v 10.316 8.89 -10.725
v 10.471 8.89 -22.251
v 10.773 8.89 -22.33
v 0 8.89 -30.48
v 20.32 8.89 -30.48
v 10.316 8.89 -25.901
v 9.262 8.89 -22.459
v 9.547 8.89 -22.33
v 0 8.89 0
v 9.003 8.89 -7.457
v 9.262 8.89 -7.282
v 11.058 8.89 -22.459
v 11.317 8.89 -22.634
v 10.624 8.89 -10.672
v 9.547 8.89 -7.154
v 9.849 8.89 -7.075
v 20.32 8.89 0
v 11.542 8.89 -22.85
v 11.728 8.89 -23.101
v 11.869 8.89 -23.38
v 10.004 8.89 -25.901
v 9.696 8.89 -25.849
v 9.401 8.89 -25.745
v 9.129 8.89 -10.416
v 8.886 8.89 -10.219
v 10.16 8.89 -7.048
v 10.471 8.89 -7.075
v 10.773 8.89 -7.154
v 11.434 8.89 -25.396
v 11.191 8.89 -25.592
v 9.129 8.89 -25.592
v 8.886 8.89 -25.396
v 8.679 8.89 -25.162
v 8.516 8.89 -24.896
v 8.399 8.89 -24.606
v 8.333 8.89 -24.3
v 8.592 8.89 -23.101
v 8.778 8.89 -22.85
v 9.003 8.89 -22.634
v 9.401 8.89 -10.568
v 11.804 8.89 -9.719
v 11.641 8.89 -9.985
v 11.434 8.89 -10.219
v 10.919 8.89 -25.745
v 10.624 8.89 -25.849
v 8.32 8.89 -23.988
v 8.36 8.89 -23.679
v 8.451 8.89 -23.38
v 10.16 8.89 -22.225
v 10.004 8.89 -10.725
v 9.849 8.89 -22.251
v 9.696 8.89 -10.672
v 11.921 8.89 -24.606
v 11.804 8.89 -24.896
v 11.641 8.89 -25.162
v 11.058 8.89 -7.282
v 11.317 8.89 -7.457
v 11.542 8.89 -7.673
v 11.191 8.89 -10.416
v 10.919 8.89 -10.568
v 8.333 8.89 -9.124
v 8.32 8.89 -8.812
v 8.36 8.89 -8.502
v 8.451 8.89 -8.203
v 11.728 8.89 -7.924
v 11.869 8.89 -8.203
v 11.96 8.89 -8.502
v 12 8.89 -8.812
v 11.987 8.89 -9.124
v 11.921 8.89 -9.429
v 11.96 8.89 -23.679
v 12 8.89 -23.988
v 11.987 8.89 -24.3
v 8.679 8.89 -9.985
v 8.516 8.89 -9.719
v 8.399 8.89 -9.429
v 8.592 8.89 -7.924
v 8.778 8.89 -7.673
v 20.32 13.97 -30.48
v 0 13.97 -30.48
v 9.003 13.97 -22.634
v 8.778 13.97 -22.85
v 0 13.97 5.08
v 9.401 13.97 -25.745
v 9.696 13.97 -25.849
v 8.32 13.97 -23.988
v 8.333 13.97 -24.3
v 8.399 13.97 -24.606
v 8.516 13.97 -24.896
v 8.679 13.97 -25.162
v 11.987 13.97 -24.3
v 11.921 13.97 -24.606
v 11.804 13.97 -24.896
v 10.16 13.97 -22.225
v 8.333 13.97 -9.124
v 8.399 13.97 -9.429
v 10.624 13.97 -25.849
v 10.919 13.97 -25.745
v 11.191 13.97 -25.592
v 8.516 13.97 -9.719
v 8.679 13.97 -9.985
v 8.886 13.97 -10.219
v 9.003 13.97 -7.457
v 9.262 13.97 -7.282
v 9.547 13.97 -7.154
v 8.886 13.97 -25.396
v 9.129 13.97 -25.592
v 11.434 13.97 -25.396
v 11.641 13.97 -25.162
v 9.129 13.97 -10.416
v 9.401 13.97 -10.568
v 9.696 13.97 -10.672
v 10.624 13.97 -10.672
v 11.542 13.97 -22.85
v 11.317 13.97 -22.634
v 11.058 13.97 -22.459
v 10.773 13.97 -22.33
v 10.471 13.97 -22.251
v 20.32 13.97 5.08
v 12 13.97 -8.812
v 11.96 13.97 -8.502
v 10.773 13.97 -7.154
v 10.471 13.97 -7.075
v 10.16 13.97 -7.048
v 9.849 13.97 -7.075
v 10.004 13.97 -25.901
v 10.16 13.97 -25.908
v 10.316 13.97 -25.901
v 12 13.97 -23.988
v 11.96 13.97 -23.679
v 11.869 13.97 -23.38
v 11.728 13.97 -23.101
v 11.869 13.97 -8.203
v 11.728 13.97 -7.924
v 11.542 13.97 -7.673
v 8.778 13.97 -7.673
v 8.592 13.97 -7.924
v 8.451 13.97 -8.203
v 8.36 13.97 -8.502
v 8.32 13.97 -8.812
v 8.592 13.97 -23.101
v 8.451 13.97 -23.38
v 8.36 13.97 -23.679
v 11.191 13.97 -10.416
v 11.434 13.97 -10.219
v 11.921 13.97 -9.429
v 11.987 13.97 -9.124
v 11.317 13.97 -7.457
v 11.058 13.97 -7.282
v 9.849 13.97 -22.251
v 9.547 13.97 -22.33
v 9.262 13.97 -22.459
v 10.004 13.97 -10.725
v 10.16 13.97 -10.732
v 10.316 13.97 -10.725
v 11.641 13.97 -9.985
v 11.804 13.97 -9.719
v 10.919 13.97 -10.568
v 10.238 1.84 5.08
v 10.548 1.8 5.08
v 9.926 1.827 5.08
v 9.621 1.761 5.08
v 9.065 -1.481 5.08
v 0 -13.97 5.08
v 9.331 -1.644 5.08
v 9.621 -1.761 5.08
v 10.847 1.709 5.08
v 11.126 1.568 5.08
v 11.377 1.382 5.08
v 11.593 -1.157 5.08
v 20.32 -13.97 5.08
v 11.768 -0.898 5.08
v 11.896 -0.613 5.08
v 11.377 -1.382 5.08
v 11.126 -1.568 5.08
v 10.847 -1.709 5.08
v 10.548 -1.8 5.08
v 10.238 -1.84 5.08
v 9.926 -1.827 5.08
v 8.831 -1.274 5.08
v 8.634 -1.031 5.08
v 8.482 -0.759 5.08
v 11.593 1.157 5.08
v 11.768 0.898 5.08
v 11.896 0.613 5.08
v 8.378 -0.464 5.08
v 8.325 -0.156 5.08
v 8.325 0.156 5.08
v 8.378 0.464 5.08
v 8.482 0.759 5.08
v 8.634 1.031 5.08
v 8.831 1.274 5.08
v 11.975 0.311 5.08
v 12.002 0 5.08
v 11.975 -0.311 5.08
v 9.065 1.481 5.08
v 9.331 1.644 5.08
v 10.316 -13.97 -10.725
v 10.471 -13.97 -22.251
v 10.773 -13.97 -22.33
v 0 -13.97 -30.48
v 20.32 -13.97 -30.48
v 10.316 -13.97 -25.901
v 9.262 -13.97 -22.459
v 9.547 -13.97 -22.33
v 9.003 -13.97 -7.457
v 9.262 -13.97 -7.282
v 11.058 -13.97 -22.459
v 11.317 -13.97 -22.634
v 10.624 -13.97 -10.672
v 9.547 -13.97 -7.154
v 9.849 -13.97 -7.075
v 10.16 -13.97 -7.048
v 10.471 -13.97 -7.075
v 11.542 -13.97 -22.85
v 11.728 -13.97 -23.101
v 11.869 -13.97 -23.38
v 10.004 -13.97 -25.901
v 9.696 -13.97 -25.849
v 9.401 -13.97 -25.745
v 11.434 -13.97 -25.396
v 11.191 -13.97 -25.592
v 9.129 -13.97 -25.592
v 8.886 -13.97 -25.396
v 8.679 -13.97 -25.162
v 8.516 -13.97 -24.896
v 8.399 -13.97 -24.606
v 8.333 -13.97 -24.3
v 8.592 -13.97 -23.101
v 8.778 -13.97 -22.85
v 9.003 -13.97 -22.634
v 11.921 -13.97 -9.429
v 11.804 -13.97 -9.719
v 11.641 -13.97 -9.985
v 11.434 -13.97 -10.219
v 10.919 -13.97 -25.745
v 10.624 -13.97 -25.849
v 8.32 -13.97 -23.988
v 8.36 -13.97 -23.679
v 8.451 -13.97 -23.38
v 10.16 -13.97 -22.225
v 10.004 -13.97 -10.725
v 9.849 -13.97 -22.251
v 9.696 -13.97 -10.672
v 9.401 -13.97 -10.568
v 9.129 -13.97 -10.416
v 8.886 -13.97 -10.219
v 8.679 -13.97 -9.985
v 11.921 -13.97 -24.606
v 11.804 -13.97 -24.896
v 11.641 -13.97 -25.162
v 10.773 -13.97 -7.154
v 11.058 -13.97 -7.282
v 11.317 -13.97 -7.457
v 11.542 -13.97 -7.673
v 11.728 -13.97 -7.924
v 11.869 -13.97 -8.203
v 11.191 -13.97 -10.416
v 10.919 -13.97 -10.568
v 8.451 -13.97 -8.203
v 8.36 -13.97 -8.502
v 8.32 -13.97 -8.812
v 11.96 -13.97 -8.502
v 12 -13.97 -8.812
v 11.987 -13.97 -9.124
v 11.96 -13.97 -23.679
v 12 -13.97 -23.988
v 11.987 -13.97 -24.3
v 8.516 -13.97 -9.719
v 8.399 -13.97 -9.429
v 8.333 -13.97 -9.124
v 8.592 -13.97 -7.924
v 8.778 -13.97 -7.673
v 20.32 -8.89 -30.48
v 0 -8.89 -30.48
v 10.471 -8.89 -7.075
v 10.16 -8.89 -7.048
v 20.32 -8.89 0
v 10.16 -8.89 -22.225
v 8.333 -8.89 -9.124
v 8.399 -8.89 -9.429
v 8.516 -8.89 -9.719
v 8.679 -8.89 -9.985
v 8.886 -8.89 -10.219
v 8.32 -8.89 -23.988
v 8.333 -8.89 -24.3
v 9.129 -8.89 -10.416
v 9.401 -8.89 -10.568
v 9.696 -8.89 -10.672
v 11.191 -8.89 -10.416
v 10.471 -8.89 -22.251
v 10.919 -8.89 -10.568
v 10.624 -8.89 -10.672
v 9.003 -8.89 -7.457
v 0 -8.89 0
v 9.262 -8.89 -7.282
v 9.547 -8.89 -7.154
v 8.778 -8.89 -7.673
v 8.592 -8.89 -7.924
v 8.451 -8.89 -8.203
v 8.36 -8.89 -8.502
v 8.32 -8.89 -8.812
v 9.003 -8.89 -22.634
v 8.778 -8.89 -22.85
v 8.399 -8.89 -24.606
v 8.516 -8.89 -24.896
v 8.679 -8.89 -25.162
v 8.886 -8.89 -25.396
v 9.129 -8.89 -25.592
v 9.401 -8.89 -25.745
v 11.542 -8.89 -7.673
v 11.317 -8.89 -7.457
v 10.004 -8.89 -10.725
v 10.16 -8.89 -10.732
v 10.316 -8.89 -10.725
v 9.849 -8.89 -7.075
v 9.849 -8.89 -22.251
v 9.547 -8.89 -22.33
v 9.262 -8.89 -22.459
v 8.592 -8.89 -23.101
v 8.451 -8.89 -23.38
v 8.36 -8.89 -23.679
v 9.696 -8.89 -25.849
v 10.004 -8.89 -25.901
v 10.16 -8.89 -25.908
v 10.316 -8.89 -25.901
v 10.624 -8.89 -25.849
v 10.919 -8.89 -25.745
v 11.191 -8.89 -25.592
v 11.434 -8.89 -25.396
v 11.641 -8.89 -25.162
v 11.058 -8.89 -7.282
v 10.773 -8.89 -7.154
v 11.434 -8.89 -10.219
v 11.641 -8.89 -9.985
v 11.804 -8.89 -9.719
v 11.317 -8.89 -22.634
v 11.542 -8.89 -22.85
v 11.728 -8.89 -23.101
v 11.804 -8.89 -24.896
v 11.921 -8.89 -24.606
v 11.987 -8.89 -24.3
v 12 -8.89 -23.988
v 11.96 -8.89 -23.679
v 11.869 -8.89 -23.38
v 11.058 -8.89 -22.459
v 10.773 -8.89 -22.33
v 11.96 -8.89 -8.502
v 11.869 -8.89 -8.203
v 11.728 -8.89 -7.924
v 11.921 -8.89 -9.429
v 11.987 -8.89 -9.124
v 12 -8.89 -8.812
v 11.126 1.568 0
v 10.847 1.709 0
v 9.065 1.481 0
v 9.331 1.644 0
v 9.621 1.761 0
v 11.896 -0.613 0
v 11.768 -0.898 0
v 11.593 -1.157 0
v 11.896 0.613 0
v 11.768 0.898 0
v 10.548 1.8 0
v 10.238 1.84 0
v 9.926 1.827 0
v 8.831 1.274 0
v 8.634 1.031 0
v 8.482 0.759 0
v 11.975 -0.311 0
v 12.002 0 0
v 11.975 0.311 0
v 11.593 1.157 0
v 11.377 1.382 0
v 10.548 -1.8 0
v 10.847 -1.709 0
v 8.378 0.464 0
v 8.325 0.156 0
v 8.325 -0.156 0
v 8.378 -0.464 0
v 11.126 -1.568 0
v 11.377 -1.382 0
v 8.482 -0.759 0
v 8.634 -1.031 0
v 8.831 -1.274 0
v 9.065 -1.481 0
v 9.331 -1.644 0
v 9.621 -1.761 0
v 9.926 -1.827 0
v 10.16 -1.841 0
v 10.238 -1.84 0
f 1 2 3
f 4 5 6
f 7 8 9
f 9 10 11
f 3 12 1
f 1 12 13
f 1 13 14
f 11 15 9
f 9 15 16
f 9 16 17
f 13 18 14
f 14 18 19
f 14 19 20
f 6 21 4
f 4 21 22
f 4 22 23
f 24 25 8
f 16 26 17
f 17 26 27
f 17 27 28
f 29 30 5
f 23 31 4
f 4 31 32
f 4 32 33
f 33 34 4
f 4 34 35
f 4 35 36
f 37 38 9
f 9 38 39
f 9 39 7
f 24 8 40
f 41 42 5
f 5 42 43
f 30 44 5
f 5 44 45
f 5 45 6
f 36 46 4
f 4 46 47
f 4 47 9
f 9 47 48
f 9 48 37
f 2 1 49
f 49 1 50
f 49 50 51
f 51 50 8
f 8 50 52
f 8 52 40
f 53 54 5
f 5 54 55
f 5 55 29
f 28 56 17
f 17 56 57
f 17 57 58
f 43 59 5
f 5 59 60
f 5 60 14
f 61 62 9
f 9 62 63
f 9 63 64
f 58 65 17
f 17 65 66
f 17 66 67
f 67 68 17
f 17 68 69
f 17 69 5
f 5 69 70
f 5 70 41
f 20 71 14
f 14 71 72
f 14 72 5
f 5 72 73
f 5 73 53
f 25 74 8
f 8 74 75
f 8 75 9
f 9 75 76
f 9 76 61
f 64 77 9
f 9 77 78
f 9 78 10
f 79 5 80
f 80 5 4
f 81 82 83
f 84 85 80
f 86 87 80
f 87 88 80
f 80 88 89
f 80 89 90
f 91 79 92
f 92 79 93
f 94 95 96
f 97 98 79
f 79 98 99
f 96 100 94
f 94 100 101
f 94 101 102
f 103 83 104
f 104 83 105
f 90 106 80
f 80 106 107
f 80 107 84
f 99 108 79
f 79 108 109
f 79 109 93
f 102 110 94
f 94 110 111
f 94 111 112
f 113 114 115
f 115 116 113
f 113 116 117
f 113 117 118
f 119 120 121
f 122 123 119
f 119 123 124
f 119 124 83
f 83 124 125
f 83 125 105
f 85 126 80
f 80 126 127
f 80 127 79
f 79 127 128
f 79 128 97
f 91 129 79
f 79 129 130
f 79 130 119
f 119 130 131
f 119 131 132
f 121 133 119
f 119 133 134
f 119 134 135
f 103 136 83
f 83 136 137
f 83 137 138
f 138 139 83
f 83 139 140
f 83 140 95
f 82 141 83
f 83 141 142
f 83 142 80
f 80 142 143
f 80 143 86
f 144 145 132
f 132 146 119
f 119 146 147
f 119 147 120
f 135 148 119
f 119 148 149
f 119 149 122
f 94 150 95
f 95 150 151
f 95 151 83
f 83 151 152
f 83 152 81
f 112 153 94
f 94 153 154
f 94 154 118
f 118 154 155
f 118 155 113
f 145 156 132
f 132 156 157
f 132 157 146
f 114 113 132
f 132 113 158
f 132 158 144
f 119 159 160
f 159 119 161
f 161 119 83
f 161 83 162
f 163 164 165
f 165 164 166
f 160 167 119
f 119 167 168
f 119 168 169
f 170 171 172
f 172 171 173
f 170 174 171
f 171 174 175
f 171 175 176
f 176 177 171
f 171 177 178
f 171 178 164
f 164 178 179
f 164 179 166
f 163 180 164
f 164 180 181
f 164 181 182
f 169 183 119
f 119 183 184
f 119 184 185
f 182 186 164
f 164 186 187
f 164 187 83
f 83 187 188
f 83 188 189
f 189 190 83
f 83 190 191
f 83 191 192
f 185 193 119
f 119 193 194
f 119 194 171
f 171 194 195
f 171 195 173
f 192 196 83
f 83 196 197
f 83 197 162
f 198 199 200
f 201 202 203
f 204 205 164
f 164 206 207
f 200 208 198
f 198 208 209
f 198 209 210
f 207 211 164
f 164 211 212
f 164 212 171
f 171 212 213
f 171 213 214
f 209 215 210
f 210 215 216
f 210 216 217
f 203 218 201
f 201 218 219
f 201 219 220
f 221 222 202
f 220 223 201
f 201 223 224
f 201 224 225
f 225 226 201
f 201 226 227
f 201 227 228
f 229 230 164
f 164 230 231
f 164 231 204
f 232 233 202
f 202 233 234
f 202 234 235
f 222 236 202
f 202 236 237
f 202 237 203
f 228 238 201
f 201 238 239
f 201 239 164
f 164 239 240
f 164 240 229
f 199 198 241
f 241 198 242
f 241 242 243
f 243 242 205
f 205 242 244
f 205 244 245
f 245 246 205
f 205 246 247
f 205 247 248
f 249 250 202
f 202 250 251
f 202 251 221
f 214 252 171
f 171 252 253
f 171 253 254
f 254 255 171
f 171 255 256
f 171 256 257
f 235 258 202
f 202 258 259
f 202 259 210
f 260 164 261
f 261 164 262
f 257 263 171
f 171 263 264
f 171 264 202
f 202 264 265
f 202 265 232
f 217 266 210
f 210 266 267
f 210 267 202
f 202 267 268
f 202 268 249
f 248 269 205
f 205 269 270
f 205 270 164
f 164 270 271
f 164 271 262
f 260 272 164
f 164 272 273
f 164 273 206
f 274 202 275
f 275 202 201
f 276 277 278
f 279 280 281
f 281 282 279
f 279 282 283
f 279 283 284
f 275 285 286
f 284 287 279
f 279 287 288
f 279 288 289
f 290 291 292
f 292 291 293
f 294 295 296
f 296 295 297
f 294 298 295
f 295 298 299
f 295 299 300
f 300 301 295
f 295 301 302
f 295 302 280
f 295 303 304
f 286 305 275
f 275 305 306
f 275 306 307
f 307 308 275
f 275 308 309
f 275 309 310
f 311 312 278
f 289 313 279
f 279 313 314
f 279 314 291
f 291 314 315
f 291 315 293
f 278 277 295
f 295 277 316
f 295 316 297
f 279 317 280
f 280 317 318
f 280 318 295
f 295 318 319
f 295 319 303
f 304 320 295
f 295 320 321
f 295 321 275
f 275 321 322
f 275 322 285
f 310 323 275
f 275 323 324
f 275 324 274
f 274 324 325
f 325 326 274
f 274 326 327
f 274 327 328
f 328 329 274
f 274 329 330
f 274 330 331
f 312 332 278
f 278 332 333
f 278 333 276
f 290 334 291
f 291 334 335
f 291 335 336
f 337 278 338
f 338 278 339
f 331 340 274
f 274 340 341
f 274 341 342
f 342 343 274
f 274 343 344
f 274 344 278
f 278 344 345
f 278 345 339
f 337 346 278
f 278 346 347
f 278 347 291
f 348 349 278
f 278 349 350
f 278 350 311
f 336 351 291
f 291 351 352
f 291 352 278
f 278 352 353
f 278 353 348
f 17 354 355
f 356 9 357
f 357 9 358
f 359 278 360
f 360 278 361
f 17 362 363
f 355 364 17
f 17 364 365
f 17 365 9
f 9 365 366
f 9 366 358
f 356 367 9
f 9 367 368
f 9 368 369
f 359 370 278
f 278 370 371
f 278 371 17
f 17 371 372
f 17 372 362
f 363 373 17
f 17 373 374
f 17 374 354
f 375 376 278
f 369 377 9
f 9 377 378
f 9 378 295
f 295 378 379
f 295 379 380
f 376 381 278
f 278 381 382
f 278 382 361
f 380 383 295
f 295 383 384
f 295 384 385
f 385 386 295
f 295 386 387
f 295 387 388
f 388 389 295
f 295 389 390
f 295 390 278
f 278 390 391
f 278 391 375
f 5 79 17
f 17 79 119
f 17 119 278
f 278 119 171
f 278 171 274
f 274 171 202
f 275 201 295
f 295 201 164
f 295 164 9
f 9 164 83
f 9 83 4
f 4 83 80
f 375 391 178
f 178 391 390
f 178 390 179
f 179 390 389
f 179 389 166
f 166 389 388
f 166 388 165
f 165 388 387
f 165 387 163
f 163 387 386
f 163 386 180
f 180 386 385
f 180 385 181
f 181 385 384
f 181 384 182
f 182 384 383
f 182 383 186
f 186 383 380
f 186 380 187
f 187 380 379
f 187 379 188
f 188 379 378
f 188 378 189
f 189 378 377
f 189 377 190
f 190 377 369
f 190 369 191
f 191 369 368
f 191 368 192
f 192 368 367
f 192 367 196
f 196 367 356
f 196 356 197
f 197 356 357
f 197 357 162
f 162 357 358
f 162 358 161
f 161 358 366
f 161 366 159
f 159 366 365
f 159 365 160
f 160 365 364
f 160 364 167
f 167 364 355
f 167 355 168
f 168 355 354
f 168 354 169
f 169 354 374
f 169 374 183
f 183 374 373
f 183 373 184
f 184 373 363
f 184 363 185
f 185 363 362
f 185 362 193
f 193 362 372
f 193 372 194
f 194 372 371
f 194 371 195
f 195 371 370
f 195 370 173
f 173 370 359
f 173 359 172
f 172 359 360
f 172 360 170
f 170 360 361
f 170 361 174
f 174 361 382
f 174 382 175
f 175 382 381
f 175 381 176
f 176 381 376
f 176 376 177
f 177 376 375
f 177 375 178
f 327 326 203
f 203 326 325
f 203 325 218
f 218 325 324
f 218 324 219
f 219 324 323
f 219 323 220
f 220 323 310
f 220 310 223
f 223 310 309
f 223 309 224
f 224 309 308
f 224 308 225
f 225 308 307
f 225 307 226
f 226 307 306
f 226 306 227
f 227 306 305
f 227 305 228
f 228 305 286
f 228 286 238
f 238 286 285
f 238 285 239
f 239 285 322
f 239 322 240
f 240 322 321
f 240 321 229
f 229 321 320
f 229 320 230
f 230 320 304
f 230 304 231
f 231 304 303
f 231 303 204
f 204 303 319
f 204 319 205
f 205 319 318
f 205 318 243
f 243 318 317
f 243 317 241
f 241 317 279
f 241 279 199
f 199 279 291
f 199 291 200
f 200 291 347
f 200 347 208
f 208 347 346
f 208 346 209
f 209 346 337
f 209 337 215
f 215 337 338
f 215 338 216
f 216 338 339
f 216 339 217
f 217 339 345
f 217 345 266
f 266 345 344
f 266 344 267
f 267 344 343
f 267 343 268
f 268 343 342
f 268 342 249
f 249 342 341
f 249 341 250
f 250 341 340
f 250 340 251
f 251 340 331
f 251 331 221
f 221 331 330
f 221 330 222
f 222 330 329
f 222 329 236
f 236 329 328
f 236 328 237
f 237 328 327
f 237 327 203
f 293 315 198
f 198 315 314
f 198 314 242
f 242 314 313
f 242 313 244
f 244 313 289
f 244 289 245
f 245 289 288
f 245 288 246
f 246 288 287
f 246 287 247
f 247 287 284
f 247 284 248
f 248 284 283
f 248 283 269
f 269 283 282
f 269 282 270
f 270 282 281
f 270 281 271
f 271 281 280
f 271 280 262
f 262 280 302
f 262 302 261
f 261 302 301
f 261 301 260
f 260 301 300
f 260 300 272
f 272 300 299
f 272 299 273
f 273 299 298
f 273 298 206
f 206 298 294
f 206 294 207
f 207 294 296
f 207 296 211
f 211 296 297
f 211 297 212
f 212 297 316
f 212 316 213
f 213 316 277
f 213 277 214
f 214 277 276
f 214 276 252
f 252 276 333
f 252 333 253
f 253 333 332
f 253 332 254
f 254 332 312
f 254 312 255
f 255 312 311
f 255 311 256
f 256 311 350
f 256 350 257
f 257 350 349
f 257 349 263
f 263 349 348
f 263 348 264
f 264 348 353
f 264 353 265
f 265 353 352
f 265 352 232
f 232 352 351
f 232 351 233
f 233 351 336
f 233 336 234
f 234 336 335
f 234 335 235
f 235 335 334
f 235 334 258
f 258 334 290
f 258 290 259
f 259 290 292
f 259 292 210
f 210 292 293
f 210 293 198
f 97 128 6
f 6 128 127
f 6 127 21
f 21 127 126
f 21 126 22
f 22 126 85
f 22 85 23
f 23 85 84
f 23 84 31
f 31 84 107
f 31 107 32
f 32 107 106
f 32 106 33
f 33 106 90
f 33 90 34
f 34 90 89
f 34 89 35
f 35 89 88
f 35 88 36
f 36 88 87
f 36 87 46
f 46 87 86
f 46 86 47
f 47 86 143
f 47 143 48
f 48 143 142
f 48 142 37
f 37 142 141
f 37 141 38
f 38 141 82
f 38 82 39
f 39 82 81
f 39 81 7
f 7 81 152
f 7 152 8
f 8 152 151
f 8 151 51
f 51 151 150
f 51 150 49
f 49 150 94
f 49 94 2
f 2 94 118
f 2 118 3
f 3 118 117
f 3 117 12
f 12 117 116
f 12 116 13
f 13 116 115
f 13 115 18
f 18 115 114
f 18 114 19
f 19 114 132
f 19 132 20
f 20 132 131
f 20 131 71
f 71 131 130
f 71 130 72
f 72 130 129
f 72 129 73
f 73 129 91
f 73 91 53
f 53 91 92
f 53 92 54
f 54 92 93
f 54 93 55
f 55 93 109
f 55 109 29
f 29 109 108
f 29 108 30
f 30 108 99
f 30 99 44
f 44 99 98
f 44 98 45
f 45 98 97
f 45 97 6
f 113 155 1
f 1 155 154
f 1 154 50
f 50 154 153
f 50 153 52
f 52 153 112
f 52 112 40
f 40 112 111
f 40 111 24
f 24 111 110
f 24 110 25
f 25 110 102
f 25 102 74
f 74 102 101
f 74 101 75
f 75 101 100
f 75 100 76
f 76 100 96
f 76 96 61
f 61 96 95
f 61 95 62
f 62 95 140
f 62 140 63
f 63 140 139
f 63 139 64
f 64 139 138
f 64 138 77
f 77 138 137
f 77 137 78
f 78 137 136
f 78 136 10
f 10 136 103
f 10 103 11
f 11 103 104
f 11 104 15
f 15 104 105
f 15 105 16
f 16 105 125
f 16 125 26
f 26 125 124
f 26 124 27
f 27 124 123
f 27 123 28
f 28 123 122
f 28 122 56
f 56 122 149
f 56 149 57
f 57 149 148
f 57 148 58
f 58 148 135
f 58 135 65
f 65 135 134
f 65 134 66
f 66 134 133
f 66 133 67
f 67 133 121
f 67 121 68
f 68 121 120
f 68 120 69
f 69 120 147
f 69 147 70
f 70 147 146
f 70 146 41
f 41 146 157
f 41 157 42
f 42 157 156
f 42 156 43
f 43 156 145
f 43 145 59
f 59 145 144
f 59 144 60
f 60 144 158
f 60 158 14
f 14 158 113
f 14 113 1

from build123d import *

# Parameters (mm, degrees)
BOSS_EXTRUDE1_DEPTH     = 20.32
CUT_EXTRUDE1_REACH      = 45.273
SKETCH2_R               = 1.8415
CUT_EXTRUDE2_DEPTH      = 47.071427154
CUT_EXTRUDE2_DEPTH_BACK = 47.071427154
SKETCH3_R               = 1.8415


with BuildPart() as part:
    # Sketch1 → Boss-Extrude1 (new body)
    with BuildSketch(Plane(origin=(0, 0, 0), x_dir=(0, 0, -1), z_dir=(1, 0, 0))):
        Polygon((0, 8.89), (0, -8.89), (30.48, -8.89), (30.48, -13.97), (-5.08, -13.97), (-5.08, 13.97), (30.48, 13.97), (30.48, 8.89), align=None)
    extrude(amount=BOSS_EXTRUDE1_DEPTH)

    # Sketch2 → Cut-Extrude1 (cut, up to next)
    with BuildSketch(Plane.XY.offset(5.08), mode=Mode.PRIVATE) as cut_extrude1_sk1:
        with Locations((10.16, 0)):
            Circle(SKETCH2_R)
    cut_extrude1_tool1 = extrude(cut_extrude1_sk1.sketch, amount=-CUT_EXTRUDE1_REACH, mode=Mode.PRIVATE) & part.part
    add(cut_extrude1_tool1.solids().sort_by_distance((10.16, 0, 5.08))[0], mode=Mode.SUBTRACT)

    # Sketch3 → Cut-Extrude2 (cut, two sides: drawn at the far end of the back side and taken through both)
    with BuildSketch(Plane(origin=(0, 13.97, 0), x_dir=(1, 0, 0), z_dir=(0, 1, 0)).offset(-CUT_EXTRUDE2_DEPTH_BACK)):
        with Locations(Location((10.16, 8.89, 0), (0, 0, 270))):
            Circle(SKETCH3_R)
        with Locations(Location((10.16, 24.0665, 0), (0, 0, 270))):
            Circle(SKETCH3_R)
    extrude(amount=CUT_EXTRUDE2_DEPTH + CUT_EXTRUDE2_DEPTH_BACK, mode=Mode.SUBTRACT)


solid = part.part
